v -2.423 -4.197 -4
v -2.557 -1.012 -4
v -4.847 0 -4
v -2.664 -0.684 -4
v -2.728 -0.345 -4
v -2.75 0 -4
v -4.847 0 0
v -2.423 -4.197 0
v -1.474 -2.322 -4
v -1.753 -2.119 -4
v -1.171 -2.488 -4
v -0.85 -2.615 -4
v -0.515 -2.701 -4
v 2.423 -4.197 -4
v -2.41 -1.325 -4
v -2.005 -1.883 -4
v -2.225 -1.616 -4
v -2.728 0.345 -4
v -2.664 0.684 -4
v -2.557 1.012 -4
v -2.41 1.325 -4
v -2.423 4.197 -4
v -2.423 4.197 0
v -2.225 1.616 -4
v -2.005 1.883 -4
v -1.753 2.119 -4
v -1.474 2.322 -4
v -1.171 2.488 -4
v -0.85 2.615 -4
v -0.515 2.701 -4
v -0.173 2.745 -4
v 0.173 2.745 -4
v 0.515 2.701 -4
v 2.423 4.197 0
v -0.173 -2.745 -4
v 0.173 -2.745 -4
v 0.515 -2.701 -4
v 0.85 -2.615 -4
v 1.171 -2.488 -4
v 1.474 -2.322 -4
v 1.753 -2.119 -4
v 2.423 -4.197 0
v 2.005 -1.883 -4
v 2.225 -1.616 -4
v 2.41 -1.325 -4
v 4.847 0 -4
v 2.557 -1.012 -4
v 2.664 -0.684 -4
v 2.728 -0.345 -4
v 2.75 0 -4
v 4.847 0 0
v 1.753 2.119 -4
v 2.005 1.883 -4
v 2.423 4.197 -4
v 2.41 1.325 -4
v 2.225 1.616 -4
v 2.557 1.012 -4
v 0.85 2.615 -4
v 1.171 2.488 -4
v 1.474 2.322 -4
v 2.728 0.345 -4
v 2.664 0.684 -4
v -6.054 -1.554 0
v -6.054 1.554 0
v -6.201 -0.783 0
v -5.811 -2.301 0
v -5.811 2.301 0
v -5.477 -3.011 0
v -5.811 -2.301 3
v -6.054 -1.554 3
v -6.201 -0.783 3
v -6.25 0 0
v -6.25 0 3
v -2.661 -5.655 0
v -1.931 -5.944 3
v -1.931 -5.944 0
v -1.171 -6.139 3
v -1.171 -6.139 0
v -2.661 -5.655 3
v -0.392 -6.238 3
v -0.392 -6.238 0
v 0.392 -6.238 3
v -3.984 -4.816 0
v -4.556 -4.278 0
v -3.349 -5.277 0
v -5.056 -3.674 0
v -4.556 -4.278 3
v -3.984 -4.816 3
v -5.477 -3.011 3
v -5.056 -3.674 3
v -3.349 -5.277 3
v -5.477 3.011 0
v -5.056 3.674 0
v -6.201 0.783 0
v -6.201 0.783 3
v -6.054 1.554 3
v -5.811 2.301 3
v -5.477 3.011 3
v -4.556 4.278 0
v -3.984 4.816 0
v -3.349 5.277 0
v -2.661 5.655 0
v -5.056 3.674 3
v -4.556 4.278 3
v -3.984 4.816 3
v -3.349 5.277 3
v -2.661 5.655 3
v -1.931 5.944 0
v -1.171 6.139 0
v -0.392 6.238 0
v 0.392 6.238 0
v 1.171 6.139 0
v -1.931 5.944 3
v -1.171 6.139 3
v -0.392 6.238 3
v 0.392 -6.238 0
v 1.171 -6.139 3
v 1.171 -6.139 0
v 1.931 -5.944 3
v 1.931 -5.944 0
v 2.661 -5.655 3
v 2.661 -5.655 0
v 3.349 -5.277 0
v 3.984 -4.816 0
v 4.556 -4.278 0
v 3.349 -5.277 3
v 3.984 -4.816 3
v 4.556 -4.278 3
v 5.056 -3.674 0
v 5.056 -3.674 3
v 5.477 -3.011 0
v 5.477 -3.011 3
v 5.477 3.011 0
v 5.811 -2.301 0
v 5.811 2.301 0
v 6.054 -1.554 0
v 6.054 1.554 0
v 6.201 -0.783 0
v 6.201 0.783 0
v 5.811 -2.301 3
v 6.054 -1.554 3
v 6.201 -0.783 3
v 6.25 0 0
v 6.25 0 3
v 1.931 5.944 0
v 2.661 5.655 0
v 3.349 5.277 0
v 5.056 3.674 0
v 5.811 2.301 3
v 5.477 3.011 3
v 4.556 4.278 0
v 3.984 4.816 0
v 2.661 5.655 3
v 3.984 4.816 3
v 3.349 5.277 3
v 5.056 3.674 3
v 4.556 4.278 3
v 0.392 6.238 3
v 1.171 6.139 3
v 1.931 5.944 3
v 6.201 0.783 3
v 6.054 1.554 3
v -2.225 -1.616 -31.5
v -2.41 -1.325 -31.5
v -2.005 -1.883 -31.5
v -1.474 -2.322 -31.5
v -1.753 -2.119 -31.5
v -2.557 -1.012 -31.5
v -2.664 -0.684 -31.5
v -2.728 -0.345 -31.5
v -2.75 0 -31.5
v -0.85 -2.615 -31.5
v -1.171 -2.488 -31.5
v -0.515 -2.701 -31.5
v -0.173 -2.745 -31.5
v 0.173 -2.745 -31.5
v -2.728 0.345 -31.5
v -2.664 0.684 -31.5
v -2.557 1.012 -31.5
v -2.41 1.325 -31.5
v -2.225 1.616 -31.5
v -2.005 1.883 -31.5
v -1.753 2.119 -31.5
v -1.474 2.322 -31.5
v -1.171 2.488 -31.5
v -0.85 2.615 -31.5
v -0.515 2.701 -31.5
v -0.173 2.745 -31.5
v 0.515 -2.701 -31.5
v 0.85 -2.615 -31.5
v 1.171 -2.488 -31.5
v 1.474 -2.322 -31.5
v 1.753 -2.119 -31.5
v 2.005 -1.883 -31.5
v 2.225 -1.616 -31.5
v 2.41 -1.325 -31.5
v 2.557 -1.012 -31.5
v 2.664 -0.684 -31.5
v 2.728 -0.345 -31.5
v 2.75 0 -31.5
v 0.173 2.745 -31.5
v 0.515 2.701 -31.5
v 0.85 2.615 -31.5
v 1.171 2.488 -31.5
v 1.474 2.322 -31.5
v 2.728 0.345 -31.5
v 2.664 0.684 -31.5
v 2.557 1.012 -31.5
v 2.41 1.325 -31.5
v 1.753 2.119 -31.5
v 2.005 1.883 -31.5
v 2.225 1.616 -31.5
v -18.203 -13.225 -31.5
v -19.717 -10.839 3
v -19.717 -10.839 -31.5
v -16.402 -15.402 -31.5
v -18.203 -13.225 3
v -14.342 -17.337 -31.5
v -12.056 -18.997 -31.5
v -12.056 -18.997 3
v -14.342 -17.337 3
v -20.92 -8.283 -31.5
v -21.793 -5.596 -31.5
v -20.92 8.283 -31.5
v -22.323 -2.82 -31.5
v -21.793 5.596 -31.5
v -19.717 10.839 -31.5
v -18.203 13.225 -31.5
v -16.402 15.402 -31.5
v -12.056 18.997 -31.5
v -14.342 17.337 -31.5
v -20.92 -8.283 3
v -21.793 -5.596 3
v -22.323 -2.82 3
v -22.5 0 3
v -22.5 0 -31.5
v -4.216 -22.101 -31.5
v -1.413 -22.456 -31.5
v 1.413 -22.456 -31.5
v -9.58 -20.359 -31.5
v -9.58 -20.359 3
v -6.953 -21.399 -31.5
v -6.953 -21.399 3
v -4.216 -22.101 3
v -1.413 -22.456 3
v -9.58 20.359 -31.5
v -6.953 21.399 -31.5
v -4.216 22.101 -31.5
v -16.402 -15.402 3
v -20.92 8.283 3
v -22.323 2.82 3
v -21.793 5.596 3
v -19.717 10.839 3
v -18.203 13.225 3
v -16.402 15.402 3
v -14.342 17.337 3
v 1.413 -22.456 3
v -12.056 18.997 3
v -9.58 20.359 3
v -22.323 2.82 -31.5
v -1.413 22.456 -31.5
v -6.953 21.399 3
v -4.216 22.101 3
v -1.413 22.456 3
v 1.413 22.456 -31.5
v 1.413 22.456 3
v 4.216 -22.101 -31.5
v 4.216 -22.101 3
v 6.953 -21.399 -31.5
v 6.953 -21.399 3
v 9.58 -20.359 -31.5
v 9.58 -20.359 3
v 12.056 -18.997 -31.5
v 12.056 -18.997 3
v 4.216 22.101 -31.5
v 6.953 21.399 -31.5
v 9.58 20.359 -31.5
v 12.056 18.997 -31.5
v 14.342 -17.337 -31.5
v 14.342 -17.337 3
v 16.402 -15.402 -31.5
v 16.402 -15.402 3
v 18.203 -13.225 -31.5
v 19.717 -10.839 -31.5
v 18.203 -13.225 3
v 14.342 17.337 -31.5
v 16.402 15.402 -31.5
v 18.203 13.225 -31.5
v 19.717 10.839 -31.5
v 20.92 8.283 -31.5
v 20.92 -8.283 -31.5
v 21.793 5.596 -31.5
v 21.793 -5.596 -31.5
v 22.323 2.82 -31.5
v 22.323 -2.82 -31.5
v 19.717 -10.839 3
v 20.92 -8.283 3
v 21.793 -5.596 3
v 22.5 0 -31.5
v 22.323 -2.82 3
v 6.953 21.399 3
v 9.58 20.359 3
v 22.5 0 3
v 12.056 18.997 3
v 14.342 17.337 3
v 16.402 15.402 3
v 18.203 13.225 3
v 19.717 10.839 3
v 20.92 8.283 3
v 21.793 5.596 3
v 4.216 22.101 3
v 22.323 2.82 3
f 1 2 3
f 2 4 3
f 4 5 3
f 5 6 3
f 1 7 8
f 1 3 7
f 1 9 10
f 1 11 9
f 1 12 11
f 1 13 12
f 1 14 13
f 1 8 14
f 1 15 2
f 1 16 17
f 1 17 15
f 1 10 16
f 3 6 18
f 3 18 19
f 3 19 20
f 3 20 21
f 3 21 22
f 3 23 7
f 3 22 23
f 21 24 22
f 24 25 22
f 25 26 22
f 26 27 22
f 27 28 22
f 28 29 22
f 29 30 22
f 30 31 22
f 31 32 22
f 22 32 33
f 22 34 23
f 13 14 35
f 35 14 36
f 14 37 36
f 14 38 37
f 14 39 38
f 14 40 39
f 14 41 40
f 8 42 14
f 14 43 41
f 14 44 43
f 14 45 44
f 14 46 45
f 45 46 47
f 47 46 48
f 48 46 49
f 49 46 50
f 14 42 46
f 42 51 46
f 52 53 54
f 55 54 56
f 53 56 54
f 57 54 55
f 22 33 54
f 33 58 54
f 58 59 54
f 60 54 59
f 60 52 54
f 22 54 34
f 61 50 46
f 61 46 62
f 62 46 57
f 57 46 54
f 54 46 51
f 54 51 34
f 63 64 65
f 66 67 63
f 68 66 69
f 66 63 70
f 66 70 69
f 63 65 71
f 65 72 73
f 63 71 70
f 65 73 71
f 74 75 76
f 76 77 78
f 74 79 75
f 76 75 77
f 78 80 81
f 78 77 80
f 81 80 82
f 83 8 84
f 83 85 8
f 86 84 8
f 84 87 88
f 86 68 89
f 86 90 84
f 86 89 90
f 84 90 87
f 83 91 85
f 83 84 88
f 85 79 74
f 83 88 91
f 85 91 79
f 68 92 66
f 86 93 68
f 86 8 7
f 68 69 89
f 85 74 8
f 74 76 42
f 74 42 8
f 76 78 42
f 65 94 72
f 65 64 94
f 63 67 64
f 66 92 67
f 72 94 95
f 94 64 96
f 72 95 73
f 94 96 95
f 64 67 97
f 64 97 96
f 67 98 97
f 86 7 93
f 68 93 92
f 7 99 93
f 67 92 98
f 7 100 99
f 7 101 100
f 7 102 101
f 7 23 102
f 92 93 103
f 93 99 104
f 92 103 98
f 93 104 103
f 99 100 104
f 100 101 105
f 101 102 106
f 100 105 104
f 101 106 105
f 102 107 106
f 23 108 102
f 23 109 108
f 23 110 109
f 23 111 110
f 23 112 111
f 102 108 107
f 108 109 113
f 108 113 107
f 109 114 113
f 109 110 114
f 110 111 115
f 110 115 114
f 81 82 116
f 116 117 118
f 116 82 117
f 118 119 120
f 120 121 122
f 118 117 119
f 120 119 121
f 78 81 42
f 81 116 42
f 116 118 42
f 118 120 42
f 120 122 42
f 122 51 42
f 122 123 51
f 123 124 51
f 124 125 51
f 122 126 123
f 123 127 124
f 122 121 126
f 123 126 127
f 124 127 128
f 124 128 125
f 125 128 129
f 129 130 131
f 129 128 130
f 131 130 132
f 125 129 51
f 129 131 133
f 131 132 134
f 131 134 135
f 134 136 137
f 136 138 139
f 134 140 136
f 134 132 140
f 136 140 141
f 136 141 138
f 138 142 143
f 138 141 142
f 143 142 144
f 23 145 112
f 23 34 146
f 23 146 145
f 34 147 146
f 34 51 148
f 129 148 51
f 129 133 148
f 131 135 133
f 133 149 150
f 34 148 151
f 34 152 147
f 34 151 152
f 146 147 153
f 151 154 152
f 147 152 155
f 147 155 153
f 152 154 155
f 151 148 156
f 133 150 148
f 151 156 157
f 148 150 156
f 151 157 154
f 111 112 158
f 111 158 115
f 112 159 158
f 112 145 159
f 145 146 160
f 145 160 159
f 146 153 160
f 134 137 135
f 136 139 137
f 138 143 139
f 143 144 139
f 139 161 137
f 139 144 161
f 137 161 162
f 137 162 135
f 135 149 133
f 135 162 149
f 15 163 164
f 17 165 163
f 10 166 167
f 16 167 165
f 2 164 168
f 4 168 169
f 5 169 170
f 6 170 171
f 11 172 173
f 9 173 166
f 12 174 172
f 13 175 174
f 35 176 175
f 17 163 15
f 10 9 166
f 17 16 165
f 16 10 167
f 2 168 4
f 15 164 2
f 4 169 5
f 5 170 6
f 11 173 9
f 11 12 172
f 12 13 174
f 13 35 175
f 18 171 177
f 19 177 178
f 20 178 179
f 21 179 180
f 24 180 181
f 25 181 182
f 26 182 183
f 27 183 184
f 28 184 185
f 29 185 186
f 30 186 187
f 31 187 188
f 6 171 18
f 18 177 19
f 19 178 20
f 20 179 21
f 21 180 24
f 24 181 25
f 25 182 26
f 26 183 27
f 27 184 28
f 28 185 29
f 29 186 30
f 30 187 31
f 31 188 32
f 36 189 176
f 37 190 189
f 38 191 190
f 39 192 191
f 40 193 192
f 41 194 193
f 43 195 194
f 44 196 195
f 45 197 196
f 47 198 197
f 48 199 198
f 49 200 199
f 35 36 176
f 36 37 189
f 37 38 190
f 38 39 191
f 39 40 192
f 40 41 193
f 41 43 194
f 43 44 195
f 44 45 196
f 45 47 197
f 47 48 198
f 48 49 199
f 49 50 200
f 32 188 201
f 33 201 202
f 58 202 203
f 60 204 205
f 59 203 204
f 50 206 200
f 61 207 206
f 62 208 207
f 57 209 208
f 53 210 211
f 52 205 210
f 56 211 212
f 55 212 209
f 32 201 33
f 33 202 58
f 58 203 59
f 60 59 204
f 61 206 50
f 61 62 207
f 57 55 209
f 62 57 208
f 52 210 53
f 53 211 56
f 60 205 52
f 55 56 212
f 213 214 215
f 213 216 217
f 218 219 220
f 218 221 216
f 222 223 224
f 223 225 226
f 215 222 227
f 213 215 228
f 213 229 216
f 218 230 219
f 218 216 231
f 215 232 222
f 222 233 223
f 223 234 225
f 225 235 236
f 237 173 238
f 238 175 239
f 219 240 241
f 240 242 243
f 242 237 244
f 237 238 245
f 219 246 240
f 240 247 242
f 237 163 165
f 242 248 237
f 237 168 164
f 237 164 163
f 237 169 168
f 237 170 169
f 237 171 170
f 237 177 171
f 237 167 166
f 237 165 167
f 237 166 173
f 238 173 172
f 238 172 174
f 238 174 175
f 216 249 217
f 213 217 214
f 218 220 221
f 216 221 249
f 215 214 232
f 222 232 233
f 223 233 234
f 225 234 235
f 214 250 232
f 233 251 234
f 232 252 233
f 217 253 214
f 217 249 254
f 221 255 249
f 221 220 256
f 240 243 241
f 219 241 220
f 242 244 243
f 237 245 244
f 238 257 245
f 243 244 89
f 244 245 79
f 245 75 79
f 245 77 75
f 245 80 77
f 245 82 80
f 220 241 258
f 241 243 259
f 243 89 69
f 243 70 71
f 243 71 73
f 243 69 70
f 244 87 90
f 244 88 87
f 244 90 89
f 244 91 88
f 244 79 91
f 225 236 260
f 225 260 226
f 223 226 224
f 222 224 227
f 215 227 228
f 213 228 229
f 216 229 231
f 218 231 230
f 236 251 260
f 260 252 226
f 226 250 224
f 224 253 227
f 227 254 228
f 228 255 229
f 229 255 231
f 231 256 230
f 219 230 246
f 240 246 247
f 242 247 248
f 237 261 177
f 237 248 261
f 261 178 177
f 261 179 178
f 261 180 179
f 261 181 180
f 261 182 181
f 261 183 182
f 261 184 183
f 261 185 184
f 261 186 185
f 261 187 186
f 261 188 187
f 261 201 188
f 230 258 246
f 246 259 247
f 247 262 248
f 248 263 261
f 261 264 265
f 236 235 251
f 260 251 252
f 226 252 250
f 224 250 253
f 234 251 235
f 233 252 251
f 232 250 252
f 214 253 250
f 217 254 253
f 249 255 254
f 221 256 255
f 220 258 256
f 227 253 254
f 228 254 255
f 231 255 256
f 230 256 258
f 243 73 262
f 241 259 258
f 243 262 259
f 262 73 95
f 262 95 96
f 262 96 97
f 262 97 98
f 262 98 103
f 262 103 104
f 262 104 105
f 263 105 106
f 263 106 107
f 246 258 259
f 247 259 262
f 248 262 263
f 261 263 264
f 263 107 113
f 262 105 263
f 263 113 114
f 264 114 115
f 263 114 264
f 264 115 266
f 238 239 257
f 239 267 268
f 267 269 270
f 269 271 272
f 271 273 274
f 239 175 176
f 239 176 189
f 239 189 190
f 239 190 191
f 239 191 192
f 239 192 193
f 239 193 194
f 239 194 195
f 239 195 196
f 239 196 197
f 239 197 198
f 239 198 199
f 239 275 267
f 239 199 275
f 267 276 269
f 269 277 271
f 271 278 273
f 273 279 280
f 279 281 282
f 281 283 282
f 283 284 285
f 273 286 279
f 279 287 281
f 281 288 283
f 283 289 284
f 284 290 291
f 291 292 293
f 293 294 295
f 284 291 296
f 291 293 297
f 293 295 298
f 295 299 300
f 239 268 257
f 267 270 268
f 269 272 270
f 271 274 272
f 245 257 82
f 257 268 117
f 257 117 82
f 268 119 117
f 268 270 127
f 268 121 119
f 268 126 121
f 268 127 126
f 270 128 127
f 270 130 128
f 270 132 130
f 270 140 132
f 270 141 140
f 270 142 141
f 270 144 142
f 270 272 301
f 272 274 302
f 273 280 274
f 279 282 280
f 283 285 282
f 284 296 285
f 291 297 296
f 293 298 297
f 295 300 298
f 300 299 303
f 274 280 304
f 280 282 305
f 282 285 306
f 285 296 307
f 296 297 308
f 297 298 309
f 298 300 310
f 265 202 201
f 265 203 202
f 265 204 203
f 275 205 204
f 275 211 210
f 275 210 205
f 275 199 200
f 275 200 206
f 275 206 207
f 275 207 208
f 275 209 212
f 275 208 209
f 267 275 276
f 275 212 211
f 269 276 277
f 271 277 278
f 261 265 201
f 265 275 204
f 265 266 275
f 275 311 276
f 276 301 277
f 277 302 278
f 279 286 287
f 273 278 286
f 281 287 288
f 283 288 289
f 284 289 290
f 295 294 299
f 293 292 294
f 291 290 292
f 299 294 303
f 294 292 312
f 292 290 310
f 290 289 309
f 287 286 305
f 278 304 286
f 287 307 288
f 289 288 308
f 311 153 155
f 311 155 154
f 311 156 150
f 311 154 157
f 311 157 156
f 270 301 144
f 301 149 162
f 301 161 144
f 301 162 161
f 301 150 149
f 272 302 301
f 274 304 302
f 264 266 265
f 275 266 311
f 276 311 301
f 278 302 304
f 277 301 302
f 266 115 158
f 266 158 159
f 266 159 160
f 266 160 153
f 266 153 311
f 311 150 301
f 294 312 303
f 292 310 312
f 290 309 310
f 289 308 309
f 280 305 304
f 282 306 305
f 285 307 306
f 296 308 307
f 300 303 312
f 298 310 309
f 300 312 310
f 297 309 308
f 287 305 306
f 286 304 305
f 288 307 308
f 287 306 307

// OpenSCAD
$fn = 50;

difference() {
	union() {
		translate(v = [0, 0, -31.5]) {
			cylinder(h = 34.5, r = 22.5);
		}
	}
	union() {
		translate(v = [0, 0, 0]) {
			rotate(a = [0, 0, 0]) {
				difference() {
					union() {
						translate(v = [0, 0, -4]) {
							linear_extrude(height = 4) {
								polygon(points = [[4.8468, 0.0], [2.4234000000000004, 4.197451927062417], [-2.423399999999999, 4.197451927062417], [-4.8468, 5.935618106107392e-16], [-2.423400000000002, -4.197451927062416], [2.423399999999997, -4.197451927062419]]);
							}
						}
					}
					union();
				}
			}
		}
		#cylinder(h = 3, r = 6.25);
		#translate(v = [0, 0, -100.0]) {
			cylinder(h = 200, r = 2.75);
		}
	}
}
